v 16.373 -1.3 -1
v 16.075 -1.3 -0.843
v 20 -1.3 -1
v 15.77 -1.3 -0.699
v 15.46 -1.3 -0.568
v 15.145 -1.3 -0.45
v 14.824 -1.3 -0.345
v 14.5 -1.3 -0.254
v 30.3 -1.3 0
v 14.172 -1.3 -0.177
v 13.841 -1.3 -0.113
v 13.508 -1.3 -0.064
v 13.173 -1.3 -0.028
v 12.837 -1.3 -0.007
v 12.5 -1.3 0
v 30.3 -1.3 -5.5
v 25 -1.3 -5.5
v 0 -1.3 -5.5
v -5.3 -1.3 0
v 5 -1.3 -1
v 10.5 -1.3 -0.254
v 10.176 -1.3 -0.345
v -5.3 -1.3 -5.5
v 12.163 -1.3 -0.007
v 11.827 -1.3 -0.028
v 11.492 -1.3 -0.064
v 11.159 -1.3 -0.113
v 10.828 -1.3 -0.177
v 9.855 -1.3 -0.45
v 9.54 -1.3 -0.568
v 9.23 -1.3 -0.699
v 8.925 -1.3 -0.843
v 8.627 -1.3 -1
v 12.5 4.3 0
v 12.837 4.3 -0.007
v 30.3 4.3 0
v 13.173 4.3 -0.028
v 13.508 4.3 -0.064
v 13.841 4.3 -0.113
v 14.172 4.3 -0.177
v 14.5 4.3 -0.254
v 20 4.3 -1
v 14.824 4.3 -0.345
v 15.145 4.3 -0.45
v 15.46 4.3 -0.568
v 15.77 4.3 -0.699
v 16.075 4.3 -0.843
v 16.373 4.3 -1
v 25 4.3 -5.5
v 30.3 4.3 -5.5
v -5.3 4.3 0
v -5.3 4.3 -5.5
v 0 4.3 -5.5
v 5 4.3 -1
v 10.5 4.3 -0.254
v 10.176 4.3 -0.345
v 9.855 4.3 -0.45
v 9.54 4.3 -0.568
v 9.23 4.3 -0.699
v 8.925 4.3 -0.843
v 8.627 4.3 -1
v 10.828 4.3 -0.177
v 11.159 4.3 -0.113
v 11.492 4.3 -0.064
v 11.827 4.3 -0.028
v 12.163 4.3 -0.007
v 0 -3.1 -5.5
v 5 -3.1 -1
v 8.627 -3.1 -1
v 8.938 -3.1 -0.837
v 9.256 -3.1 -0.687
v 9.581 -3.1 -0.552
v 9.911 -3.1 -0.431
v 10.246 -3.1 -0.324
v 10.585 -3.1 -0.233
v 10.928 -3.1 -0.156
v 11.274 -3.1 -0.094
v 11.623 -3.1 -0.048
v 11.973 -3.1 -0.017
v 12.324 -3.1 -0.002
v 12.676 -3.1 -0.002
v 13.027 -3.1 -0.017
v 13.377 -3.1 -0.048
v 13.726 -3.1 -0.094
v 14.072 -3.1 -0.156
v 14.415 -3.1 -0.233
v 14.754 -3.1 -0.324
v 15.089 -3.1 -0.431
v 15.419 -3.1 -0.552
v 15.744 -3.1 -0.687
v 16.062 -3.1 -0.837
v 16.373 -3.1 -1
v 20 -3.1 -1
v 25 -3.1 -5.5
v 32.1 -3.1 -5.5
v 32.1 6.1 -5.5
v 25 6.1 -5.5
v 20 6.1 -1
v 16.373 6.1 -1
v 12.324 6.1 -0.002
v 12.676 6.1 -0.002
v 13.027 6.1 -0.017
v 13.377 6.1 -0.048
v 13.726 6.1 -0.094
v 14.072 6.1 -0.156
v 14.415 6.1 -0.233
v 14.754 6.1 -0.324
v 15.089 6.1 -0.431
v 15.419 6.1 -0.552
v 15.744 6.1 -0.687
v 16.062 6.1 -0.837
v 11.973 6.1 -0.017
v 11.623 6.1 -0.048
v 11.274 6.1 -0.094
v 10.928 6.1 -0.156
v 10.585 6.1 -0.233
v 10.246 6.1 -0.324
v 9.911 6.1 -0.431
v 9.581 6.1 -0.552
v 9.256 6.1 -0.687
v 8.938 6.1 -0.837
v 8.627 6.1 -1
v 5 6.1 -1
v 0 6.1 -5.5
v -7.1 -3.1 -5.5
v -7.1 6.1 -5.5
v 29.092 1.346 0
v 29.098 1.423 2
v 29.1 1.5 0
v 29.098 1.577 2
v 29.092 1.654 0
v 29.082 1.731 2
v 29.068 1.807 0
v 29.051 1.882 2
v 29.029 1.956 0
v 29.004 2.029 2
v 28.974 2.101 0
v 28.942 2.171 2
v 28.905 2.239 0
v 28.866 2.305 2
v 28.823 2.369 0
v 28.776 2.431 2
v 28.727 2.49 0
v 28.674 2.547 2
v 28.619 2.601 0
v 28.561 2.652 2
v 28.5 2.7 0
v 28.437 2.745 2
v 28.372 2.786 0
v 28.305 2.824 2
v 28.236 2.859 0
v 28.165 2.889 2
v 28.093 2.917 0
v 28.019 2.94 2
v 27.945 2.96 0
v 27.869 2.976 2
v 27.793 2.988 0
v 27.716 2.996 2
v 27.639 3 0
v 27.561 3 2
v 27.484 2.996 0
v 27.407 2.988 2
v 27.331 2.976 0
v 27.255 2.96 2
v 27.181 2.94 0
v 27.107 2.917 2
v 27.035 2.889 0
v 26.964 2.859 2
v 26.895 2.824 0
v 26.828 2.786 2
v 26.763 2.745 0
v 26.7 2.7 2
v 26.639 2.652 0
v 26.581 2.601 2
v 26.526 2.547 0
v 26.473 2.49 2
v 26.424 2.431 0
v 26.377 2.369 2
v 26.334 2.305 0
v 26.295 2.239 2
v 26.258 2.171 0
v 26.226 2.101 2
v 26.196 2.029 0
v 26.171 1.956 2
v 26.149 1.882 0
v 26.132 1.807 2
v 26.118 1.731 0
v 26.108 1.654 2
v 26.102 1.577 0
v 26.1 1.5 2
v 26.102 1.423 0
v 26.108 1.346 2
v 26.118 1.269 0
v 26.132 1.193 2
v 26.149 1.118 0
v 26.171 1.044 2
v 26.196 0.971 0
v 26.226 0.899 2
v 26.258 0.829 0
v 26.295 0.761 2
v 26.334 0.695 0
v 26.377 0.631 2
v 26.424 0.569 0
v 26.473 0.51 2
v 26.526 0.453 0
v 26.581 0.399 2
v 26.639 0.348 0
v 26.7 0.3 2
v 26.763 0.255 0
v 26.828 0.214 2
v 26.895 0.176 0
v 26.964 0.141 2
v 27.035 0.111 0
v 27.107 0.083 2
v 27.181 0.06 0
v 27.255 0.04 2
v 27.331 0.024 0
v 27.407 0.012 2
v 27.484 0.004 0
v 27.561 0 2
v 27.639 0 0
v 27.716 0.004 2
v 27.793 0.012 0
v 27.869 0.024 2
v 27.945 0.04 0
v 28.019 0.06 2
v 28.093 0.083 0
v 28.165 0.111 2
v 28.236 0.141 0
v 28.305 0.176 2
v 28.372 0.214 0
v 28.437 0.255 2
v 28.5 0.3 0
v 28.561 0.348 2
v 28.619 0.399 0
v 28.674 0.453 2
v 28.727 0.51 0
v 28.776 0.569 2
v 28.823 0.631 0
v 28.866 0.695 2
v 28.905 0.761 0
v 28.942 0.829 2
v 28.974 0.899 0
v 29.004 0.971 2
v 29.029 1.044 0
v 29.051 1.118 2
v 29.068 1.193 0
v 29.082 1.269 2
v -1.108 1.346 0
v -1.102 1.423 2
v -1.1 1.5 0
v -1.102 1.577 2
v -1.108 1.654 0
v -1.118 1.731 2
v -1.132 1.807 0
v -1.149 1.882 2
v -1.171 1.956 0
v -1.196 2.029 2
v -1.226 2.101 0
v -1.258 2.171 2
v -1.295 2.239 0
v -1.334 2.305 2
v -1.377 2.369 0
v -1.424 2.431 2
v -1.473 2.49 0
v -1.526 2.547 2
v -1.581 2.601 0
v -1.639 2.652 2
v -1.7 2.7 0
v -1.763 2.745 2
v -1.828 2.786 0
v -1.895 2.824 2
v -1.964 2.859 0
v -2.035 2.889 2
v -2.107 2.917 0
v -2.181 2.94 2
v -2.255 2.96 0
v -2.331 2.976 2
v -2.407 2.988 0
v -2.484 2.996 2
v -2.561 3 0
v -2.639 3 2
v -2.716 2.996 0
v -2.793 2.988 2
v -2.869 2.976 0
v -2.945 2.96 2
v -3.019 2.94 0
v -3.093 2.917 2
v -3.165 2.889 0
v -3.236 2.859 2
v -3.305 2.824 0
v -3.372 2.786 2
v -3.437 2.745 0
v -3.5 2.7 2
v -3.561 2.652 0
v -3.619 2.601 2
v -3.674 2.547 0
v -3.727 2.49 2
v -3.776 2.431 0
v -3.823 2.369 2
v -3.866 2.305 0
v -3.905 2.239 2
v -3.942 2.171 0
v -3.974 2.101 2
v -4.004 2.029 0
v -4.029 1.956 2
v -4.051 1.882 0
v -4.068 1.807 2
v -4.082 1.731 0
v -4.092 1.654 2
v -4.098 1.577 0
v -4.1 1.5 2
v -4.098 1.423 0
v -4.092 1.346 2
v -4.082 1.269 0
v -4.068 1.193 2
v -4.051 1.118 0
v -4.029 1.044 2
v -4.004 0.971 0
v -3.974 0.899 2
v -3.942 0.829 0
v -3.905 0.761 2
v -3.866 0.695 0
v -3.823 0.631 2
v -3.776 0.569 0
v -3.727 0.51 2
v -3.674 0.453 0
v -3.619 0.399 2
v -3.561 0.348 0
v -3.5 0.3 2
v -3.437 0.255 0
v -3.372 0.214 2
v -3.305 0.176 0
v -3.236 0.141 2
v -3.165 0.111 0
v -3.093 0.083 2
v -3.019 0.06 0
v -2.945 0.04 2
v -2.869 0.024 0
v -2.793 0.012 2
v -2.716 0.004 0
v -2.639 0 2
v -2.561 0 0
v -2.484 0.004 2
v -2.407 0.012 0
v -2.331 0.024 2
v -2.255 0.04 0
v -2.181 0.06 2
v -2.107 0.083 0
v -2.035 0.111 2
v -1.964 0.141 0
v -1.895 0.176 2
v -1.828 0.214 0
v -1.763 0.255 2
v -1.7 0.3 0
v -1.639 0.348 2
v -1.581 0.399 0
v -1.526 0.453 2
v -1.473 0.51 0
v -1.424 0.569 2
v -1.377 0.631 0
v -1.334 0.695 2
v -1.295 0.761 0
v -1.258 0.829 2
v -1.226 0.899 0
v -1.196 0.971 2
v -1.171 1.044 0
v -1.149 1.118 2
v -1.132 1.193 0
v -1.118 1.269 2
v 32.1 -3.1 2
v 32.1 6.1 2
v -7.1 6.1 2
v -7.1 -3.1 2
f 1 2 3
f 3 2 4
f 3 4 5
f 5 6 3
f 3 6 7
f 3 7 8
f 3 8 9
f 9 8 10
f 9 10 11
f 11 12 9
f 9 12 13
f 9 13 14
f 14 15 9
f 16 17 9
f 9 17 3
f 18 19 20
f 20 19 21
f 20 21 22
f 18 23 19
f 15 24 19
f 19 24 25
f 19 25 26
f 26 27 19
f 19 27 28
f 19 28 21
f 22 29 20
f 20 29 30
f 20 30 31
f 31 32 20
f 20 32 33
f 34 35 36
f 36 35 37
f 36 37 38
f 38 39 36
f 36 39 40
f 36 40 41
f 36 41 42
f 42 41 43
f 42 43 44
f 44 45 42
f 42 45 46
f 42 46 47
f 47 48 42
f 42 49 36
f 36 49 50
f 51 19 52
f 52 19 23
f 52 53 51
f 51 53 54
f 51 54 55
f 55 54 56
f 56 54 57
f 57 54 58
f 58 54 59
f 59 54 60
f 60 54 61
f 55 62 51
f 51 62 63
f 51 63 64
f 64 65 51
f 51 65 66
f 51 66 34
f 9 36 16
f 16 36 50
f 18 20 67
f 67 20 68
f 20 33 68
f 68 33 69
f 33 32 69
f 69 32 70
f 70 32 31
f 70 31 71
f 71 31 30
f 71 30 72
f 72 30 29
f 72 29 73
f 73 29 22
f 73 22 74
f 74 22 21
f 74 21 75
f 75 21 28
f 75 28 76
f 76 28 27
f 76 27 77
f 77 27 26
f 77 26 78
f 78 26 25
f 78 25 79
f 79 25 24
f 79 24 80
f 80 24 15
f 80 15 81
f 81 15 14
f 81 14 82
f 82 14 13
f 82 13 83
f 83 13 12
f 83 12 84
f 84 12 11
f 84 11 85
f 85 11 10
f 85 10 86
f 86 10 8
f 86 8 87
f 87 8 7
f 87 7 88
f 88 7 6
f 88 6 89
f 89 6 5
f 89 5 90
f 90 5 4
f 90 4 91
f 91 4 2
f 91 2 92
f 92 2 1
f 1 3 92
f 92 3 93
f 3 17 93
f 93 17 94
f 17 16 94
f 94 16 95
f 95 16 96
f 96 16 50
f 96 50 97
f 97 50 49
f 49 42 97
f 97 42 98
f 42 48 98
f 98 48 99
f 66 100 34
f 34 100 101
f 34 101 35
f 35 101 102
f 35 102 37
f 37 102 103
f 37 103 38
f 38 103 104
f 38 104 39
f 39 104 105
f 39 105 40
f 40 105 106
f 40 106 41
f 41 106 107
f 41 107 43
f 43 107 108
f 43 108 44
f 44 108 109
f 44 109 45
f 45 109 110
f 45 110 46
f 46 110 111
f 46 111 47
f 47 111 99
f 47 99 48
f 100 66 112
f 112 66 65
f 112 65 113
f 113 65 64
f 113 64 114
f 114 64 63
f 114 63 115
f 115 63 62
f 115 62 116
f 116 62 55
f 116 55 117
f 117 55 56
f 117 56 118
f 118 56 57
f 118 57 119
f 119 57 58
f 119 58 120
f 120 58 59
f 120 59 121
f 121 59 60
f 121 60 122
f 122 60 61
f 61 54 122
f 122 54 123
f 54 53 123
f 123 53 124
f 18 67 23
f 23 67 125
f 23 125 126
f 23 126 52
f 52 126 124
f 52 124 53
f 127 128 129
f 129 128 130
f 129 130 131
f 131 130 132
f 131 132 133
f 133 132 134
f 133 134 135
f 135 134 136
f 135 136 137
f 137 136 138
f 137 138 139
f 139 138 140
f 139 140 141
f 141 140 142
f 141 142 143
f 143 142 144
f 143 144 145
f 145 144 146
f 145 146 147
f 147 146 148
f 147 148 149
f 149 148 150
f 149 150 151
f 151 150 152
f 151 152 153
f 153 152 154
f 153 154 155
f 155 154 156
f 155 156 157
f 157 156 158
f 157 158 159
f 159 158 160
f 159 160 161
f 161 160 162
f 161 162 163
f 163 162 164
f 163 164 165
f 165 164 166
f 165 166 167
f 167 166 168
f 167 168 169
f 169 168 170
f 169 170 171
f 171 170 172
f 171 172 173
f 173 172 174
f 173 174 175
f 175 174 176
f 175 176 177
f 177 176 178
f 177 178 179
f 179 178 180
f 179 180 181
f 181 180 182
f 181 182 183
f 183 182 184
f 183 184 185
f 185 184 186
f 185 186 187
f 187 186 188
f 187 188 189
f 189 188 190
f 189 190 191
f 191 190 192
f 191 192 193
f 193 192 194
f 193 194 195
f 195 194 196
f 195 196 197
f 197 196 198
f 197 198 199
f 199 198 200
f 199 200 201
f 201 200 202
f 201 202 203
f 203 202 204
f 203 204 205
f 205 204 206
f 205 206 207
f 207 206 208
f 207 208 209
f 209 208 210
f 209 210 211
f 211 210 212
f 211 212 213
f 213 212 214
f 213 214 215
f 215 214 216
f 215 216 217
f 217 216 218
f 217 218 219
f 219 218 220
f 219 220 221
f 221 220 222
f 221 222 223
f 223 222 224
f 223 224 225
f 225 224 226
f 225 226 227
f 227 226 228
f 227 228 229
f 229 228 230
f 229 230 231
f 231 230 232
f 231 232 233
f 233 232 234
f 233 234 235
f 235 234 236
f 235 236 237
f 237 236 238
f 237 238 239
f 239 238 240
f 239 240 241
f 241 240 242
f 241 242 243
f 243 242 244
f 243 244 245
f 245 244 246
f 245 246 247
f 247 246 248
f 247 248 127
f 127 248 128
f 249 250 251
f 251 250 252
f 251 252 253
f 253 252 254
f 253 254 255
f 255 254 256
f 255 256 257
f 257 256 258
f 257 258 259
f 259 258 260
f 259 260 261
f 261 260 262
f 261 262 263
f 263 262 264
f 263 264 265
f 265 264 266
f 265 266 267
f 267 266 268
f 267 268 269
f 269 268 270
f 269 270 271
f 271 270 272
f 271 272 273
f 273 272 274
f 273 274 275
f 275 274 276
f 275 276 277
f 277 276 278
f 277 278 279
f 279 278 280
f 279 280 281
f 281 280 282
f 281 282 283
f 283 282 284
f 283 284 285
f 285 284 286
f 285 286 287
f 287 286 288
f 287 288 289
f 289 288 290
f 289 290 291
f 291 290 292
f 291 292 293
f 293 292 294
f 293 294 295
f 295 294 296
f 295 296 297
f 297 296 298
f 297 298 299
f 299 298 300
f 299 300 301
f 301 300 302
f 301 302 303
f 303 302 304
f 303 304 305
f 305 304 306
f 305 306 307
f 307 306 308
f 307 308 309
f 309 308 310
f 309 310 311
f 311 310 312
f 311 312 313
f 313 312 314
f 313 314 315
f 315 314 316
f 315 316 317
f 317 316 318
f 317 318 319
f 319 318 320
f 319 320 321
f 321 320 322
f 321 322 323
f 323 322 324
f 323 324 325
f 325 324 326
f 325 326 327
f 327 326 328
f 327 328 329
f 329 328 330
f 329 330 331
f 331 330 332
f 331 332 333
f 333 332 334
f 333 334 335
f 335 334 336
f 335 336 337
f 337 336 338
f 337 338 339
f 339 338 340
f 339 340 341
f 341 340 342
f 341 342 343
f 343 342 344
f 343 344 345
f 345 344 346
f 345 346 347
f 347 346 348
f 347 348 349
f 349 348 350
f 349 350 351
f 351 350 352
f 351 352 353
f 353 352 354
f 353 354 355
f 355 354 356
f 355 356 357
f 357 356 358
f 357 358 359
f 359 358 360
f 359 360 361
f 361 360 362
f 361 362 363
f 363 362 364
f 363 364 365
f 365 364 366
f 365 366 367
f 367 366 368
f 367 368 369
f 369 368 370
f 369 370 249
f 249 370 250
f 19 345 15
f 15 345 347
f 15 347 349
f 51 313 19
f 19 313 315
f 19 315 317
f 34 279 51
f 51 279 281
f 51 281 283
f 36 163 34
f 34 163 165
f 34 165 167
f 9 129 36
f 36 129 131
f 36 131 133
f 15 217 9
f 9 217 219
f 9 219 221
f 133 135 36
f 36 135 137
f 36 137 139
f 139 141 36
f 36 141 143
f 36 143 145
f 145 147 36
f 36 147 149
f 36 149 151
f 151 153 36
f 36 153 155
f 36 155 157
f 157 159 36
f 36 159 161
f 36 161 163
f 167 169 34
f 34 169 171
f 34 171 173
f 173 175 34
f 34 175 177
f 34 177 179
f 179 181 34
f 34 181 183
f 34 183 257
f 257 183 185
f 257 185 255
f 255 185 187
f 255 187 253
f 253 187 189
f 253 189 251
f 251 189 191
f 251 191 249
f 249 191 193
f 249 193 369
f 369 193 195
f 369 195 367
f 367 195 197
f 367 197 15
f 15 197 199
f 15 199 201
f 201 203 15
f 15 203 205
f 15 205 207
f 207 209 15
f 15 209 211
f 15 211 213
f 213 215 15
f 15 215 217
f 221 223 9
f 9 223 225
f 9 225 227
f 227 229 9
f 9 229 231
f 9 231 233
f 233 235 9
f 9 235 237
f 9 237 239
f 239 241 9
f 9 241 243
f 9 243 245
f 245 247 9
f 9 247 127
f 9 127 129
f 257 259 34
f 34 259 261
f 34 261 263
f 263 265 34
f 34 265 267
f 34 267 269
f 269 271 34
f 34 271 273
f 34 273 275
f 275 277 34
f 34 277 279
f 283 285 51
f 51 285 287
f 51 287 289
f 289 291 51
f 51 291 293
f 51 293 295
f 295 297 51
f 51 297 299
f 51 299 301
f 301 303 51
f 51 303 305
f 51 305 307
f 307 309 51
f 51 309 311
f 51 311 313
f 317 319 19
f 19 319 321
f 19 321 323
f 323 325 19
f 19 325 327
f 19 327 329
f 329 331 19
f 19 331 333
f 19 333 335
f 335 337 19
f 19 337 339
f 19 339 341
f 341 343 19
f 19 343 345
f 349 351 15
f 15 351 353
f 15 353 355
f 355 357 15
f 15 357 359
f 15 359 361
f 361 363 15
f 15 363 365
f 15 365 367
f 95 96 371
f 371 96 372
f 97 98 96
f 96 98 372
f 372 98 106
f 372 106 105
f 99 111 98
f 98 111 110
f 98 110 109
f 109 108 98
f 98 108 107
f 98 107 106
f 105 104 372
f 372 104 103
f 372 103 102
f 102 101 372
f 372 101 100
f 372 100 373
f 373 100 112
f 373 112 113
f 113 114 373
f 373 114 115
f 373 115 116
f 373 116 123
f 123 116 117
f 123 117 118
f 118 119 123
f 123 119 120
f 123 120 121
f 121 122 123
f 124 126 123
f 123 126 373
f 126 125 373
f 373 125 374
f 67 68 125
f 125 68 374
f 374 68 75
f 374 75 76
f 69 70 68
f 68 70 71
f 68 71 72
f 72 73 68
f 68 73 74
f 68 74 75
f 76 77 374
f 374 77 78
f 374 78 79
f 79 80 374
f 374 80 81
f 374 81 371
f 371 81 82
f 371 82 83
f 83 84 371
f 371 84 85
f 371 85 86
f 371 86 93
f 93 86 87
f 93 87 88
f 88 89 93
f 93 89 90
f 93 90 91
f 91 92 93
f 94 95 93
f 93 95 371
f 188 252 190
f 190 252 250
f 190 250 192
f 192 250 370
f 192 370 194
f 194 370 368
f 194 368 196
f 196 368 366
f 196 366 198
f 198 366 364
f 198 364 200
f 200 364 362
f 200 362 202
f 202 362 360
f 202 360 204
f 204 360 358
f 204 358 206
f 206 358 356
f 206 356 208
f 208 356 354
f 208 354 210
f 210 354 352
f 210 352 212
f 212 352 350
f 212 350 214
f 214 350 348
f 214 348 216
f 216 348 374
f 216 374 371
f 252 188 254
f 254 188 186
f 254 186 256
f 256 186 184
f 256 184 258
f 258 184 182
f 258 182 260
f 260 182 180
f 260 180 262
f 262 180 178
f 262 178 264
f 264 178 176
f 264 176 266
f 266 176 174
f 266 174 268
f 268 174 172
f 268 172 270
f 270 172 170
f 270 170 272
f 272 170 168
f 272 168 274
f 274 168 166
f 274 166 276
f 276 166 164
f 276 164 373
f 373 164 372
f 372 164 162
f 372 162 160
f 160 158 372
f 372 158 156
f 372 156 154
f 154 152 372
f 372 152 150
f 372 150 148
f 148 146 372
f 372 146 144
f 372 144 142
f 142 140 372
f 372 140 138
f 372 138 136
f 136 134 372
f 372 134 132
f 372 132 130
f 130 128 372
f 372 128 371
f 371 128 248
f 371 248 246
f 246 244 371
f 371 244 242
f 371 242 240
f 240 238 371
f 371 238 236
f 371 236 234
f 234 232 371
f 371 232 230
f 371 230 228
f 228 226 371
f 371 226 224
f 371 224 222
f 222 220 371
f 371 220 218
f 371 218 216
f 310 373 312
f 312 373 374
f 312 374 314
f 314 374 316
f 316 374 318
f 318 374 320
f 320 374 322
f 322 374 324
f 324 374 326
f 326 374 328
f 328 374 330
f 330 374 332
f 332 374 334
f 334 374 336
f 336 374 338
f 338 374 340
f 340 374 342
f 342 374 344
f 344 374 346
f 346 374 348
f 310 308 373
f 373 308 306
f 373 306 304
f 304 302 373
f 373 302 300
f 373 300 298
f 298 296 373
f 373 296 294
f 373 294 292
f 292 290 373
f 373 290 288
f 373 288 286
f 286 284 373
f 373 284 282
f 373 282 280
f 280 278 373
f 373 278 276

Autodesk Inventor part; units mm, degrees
ref_plane "YZ Plane" through (0, 0, 0) normal (1, 0, 0) x (0, 1, 0)
ref_plane "XZ Plane" through (0, 0, 0) normal (0, 1, 0) x (-1, 0, 0)
sketch "Sketch1" plane through (0, 0, 0) normal (0, 0, 1) x (1, 0, 0)
  line L0 (-0.2, 0) -> (25.2, 0) projected
  line L1 (25.4, -1) -> (29.8, -1) projected
  line L2 (30, -0.8) -> (30, 3.8) projected
  line L3 (29.8, 4) -> (25.4, 4) projected
  line L4 (25.2, 3) -> (-0.2, 3) projected
  line L5 (-0.4, 4) -> (-4.8, 4) projected
  line L6 (-5, 3.8) -> (-5, -0.8) projected
  line L7 (-4.8, -1) -> (-0.4, -1) projected
  line L8 (25.1, -0.1) -> (-0.1, -0.1)
  line L9 (-0.1, -0.1) -> (-0.1, -1.1)
  line L10 (-0.1, -1.1) -> (-5.1, -1.1)
  line L11 (-5.1, -1.1) -> (-5.1, 4.1)
  line L12 (-5.1, 4.1) -> (-0.1, 4.1)
  line L13 (-0.1, 4.1) -> (-0.1, 3.1)
  line L14 (-0.1, 3.1) -> (25.1, 3.1)
  line L15 (25.1, 3.1) -> (25.1, 4.1)
  line L16 (25.1, 4.1) -> (30.1, 4.1)
  line L17 (30.1, 4.1) -> (30.1, -1.1)
  line L18 (30.1, -1.1) -> (25.1, -1.1)
  line L19 (25.1, -1.1) -> (25.1, -0.1)
  circle A0 centre (27.6, 1.5) radius 1.4 projected
  circle A1 centre (-2.6, 1.5) radius 1.4 projected
  line L20 (25.4, -1) -> (25.2, -0.8) projected
  line L21 (30, -0.8) -> (29.8, -1) projected
  line L22 (29.8, 4) -> (30, 3.8) projected
  line L23 (25.2, 3.8) -> (25.4, 4) projected
  line L24 (-0.4, 4) -> (-0.2, 3.8) projected
  line L25 (-5, 3.8) -> (-4.8, 4) projected
  line L26 (-4.8, -1) -> (-5, -0.8) projected
  line L27 (-0.2, -0.8) -> (-0.4, -1) projected
  line L28 (25.2, 3.8) -> (25.2, 3) projected
  line L29 (-0.2, 3) -> (-0.2, 3.8) projected
  line L30 (-0.2, -0.8) -> (-0.2, 0) projected
  line L31 (25.2, 0) -> (25.2, -0.8) projected
  point P0 (0, 0)
  dimension "d0" = 0.1
extrude "Extrusion1" add sketch "Sketch1" along normal blind 2 contours L30 L27 L7 L26 L6 L25 L5 L24 L29 L4 L28 L23 L3 L22 L2 L21 L1 L20 L31 L0 | L8 L9 L10 L11 L12 L13 L14 L15 L16 L17 L18 L19 | A0 | A1
sketch "Sketch2" plane through (0, 0, 2) normal (0, 0, 1) x (1, 0, 0)
  line L0 (25.1, -1.1) -> (30.1, -1.1) projected
  line L1 (30.1, -1.1) -> (30.1, 4.1) projected
  line L2 (30.1, 4.1) -> (25.1, 4.1) projected
  line L3 (25.1, 4.1) -> (25.1, 3.1) projected
  line L4 (25.1, 3.1) -> (-0.1, 3.1) projected
  line L5 (-0.1, 3.1) -> (-0.1, 4.1) projected
  line L6 (-0.1, 4.1) -> (-5.1, 4.1) projected
  line L7 (-5.1, 4.1) -> (-5.1, -1.1) projected
  line L8 (-5.1, -1.1) -> (-0.1, -1.1) projected
  line L9 (-0.1, -1.1) -> (-0.1, -0.1) projected
  line L10 (-0.1, -0.1) -> (25.1, -0.1) projected
  line L11 (25.1, -0.1) -> (25.1, -1.1) projected
  line L12 (-7.1, 6.1) -> (1.9, 6.1)
  line L13 (1.9, 6.1) -> (1.9, 5.1)
  line L14 (1.9, 5.1) -> (23.1, 5.1)
  line L15 (23.1, 5.1) -> (23.1, 6.1)
  line L16 (23.1, 6.1) -> (32.1, 6.1)
  line L17 (32.1, 6.1) -> (32.1, -3.1)
  line L18 (32.1, -3.1) -> (23.1, -3.1)
  line L19 (23.1, -3.1) -> (23.1, -2.1)
  line L20 (23.1, -2.1) -> (1.9, -2.1)
  line L21 (1.9, -2.1) -> (1.9, -3.1)
  line L22 (1.9, -3.1) -> (-7.1, -3.1)
  line L23 (-7.1, -3.1) -> (-7.1, 6.1)
  point P0 (0, 0)
  dimension "d3" = 2
ref_plane "Work Plane1" through (22.5, -3.5, -5.5) normal (0, 0, -1) x (0, 1, 0)
extrude "Extrusion2" add sketch "Sketch2" against normal up to surface (7.5 mm away)
sketch "Sketch3" plane through (1.9, -2.1, 2) normal (0, -1, 0) x (1, 0, 0)
  line L0 (6.9944, -4) -> (4.1, -4) projected
  arc A0 (8.2059, -3.4222) -> (6.9944, -4) centre (10.6, -10) ccw projected
  arc A1 (10.6, -3) -> (8.2059, -3.4222) centre (10.6, -10) ccw projected
  arc A2 (10.6, -3) -> (8.2059, -3.4222) centre (10.6, -10) ccw projected
  arc A3 (12.9941, -3.4222) -> (10.6, -3) centre (10.6, -10) ccw projected
  circle A4 centre (10.6, -10) radius 5.6 projected
  arc A5 (14.2056, -4) -> (12.9941, -3.4222) centre (10.6, -10) ccw projected
  line L1 (17.1, -4) -> (14.2056, -4) projected
  line L2 (17.1, -7.4019) -> (17.1, -4) projected
  line L3 (4.1, -4) -> (4.1, -7.4019) projected
  circle A6 centre (10.6, -10) radius 5.6 projected
  arc A7 (4.1, -7.4019) -> (3.8918, -8) centre (10.6, -10) ccw projected
  arc A8 (17.3082, -8) -> (17.1, -7.4019) centre (10.6, -10) ccw projected
  arc A9 (7.8638, -2.4825) -> (6.727, -3) centre (10.6, -10) ccw
  line L4 (6.727, -3) -> (3.1, -3)
  line L5 (3.1, -3) -> (3.1, -7.2161)
  arc A10 (3.1, -7.2161) -> (2.9335, -7.7143) centre (10.6, -10) ccw
  arc A11 (10.6, -2) -> (7.8638, -2.4825) centre (10.6, -10) ccw
  arc A12 (13.3362, -2.4825) -> (10.6, -2) centre (10.6, -10) ccw
  arc A13 (14.473, -3) -> (13.3362, -2.4825) centre (10.6, -10) ccw
  line L6 (14.473, -3) -> (18.1, -3)
  line L7 (18.1, -3) -> (18.1, -7.2161)
  arc A14 (18.2665, -7.7143) -> (18.1, -7.2161) centre (10.6, -10) ccw
  line L8 (0, -7.5) -> (21.2, -7.5) projected
  point P0 (-1.9, -2)
  point P1 (17.1383, -7.5)
  point P2 (18.1993, -7.5)
  point P3 (10.6, -2)
  point P4 (7.8638, -2.4825)
  point P5 (3.0007, -7.5)
  point P6 (4.0617, -7.5)
  dimension "d6" = 1
  dimension "d7" = 1
  dimension "d8" = 1
extrude "Extrusion3" cut sketch "Sketch3" against normal blind 10 contours A0 A1 A3 A5 L1 L2 A8 L8 A4 A7 L3 L0 | L0 L3 A7 L8 A10 L5 L4 A9 A11 A12 A13 L6 L7 A14 A8 L2 L1 A5 A3 A1 A0 | A4 L8 picked at (9.9261, -6.5925)
sketch "Sketch4" plane through (1.9, -2.1, 2) normal (0, -1, 0) x (1, 0, 0)
  line L0 (3.1, -7.2161) -> (3.1, -3) projected
  line L1 (0, -7.5) -> (3.0007, -7.5) projected
  line L2 (-9, -7.5) -> (0, -7.5) projected
  line L3 (-1.9, -6.3) -> (-1.9, -15) projected
  line L4 (18.1, -3) -> (18.1, -7.2161) projected
  arc A0 (3.1, -7.2161) -> (3.0007, -7.5) centre (10.6, -10) ccw projected
  arc A1 (18.1993, -7.5) -> (18.1, -7.2161) centre (10.6, -10) ccw projected
  line L5 (18.1993, -7.5) -> (21.2, -7.5) projected
  line L6 (21.2, -7.5) -> (30.2, -7.5) projected
  line L7 (23.1, -15) -> (23.1, -6.3) projected
  line L8 (3.1, -3) -> (-1.9, -7.5)
  line L9 (18.1, -3) -> (14.473, -3) projected
  line L10 (18.1, -3) -> (23.1, -7.5)
  point P0 (-1.9, -2)
extrude "Extrusion4" cut sketch "Sketch4" along normal mid plane 33.75
sketch "Sketch5" plane through (0, 0, 2) normal (0, 0, 1) x (1, 0, 0)
  line L0 (-3.9999, -1) -> (-4.8, -1) projected
  line L1 (-5, -0.8) -> (-5, 3.8) projected
  line L2 (-4.8, 4) -> (-3.9999, 4) projected
  line L3 (28.9999, 4) -> (29.8, 4) projected
  line L4 (30, 3.8) -> (30, -0.8) projected
  line L5 (29.8, -1) -> (28.9999, -1) projected
  line L6 (25.2, 4) -> (30, -1)
  line L7 (-0.2, 4) -> (-5, -1)
  circle A0 centre (-2.6, 1.5) radius 1.5
  circle A1 centre (27.6, 1.5) radius 1.5
  line L8 (30, 3.8) -> (29.8, 4) projected
  line L9 (29.8, -1) -> (30, -0.8) projected
  line L10 (-5, -0.8) -> (-4.8, -1) projected
  line L11 (-4.8, 4) -> (-5, 3.8) projected
  arc A2 (-3.9999, 1.5167) -> (-3.9999, 1.4833) centre (-2.6, 1.5) ccw projected
  line L12 (-3.9999, 1.5167) -> (-3.9999, 4) projected
  line L13 (-3.9999, -1) -> (-3.9999, 1.4833) projected
  arc A3 (28.9999, 1.4833) -> (28.9999, 1.5167) centre (27.6, 1.5) ccw projected
  line L14 (28.9999, 1.4833) -> (28.9999, -1) projected
  line L15 (28.9999, 4) -> (28.9999, 1.5167) projected
  point P0 (-2.6, 1.5)
  point P1 (27.6, 1.5)
  dimension "d13" = 3
  dimension "d14" = 3
extrude "Extrusion5" cut sketch "Sketch5" against normal blind 33.75 contours A0 L13 A2 L12 L7 | L7 A0 | A0 L12 A2 L13 | L15 A3 L14 A1 L6 | A1 L14 A3 L15 | L6 A1
chamfer "Chamfer1" distance 0.2 angle 45 4 edges at (25.1, 3.1, -2.75) (25.1, -0.1, -2.75) (-0.1, -0.1, -2.75) (-0.1, 3.1, -2.75)
sketch "Sketch6" plane through (16.373, 3.1, -1) normal (0, -1, 0) x (1, 0, 0)
  line L0 (8.527, 1) -> (8.527, -4.41) projected
  line L1 (8.527, 1) -> (-3.873, 1) projected
  arc A0 (0, 0) -> (-3.873, 1) centre (-3.873, -7) ccw projected
  line L2 (0, 0) -> (3.627, 0) projected
  line L3 (3.627, 0) -> (8.527, -4.41) projected
  line L4 (8.627, -4.5) -> (8.727, -4.5) projected
  line L5 (8.727, -4.5) -> (8.727, 1) projected
  line L6 (8.727, 1) -> (8.527, 1) projected
  line L7 (8.527, 1) -> (8.527, -4.41) projected
  line L8 (8.527, -4.41) -> (8.627, -4.5) projected
  line L9 (8.727, 1) -> (8.727, -4.5) projected
  line L10 (-16.273, -4.41) -> (-16.273, 1) projected
  line L11 (-16.273, -4.41) -> (-11.373, 0) projected
  line L12 (-11.373, 0) -> (-7.746, 0) projected
  arc A1 (-3.873, 1) -> (-7.746, 0) centre (-3.873, -7) ccw projected
  line L13 (-3.873, 1) -> (-16.273, 1) projected
  line L14 (-16.373, -4.5) -> (-16.273, -4.41) projected
  line L15 (-16.273, -4.41) -> (-16.273, 1) projected
  line L16 (-16.273, 1) -> (-16.473, 1) projected
  line L17 (-16.473, 1) -> (-16.473, -4.5) projected
  line L18 (-16.473, -4.5) -> (-16.373, -4.5) projected
  point P0 (-16.373, 1)
  point P1 (-3.873, 1)
  point P2 (-3.873, 1)
  point P3 (-3.873, 1)
  point P4 (-3.873, 1)
  point P5 (8.527, 1)
extrude "Extrusion6" cut sketch "Sketch6" against normal up to surface (1 mm away)
sketch "Sketch7" plane through (16.373, -0.1, -1) normal (0, 1, 0) x (1, 0, 0)
  line L0 (-16.273, -1) -> (-16.273, 4.41) projected
  line L1 (-16.273, -1) -> (-3.873, -1) projected
  arc A0 (-7.746, 0) -> (-3.873, -1) centre (-3.873, 7) ccw projected
  line L2 (-7.746, 0) -> (-11.373, 0) projected
  line L3 (-11.373, 0) -> (-16.273, 4.41) projected
  line L4 (-16.373, 4.5) -> (-16.473, 4.5) projected
  line L5 (-16.473, 4.5) -> (-16.473, -1) projected
  line L6 (-16.473, -1) -> (-16.273, -1) projected
  line L7 (-16.273, -1) -> (-16.273, 4.41) projected
  line L8 (-16.273, 4.41) -> (-16.373, 4.5) projected
  line L9 (8.527, 4.41) -> (8.527, -1) projected
  line L10 (8.527, 4.41) -> (3.627, 0) projected
  line L11 (3.627, 0) -> (0, 0) projected
  arc A1 (-3.873, -1) -> (0, 0) centre (-3.873, 7) ccw projected
  line L12 (-3.873, -1) -> (8.527, -1) projected
  line L13 (8.627, 4.5) -> (8.527, 4.41) projected
  line L14 (8.527, 4.41) -> (8.527, -1) projected
  line L15 (8.527, -1) -> (8.727, -1) projected
  line L16 (8.727, -1) -> (8.727, 4.5) projected
  line L17 (8.727, 4.5) -> (8.627, 4.5) projected
  point P0 (-16.373, -1)
extrude "Extrusion7" cut sketch "Sketch7" against normal up to surface (1 mm away)
sketch "Sketch8" plane through (1.9, -2.1, 2) normal (0, -1, 0) x (1, 0, 0)
  line L0 (18.1, -3) -> (21.2, -5.79) projected
  line L1 (21.2, 0) -> (21.2, -5.79) projected
  line L2 (0, 0) -> (21.2, 0) projected
  line L3 (0, 0) -> (0, -5.79) projected
  line L4 (0, -5.79) -> (3.1, -3) projected
  line L5 (3.1, -3) -> (6.727, -3) projected
  arc A0 (14.473, -3) -> (6.727, -3) centre (10.6, -10) ccw projected
  line L6 (14.473, -3) -> (18.1, -3) projected
  point P0 (-1.9, -2)
extrude "Extrusion8" add sketch "Sketch8" along normal up to surface (1 mm away)
sketch "Sketch9" plane through (1.9, 5.1, 2) normal (0, 1, 0) x (1, 0, 0)
  line L0 (21.2, 5.79) -> (18.1, 3) projected
  line L1 (18.1, 3) -> (14.473, 3) projected
  arc A0 (6.727, 3) -> (14.473, 3) centre (10.6, 10) ccw projected
  line L2 (6.727, 3) -> (3.1, 3) projected
  line L3 (3.1, 3) -> (0, 5.79) projected
  line L4 (0, 0) -> (0, 5.79) projected
  line L5 (21.2, 0) -> (0, 0) projected
  line L6 (21.2, 0) -> (21.2, 5.79) projected
  point P0 (-1.9, 2)
extrude "Extrusion9" add sketch "Sketch9" along normal up to surface (1 mm away)
sketch "Sketch10" plane through (32.1, -3.1, -5.5) normal (0, 0, -1) x (-1, 0, 0)
  line L0 (37.2, 2) -> (19.6, 2) projected
  line L1 (37.2, 7.2) -> (37.2, 2) projected
  line L2 (37.2, 7.2) -> (19.6, 7.2) projected
  line L3 (2, 7.2) -> (19.6, 7.2) projected
  line L4 (2, 2) -> (2, 7.2) projected
  line L5 (19.6, 2) -> (2, 2) projected
  circle A0 centre (34.7, 4.6) radius 1.5 projected
  circle A1 centre (4.5, 4.6) radius 1.5 projected
  line L6 (19.6, 7.4) -> (37.4, 7.4)
  line L7 (37.4, 7.4) -> (37.4, 1.8)
  line L8 (37.4, 1.8) -> (19.6, 1.8)
  line L9 (19.6, 1.8) -> (1.8, 1.8)
  line L10 (1.8, 1.8) -> (1.8, 7.4)
  line L11 (1.8, 7.4) -> (19.6, 7.4)
  point P0 (32.1, 3.1)
  dimension "d28" = 0.2
extrude "Extrusion10" cut sketch "Sketch10" against normal up to surface (5.5 mm away) contours L0 L5 L4 L3 L2 L1 | A0 | A1 | L6 L7 L8 L9 L10 L11
properties part number "CameraTopSlider_3DPrint"
